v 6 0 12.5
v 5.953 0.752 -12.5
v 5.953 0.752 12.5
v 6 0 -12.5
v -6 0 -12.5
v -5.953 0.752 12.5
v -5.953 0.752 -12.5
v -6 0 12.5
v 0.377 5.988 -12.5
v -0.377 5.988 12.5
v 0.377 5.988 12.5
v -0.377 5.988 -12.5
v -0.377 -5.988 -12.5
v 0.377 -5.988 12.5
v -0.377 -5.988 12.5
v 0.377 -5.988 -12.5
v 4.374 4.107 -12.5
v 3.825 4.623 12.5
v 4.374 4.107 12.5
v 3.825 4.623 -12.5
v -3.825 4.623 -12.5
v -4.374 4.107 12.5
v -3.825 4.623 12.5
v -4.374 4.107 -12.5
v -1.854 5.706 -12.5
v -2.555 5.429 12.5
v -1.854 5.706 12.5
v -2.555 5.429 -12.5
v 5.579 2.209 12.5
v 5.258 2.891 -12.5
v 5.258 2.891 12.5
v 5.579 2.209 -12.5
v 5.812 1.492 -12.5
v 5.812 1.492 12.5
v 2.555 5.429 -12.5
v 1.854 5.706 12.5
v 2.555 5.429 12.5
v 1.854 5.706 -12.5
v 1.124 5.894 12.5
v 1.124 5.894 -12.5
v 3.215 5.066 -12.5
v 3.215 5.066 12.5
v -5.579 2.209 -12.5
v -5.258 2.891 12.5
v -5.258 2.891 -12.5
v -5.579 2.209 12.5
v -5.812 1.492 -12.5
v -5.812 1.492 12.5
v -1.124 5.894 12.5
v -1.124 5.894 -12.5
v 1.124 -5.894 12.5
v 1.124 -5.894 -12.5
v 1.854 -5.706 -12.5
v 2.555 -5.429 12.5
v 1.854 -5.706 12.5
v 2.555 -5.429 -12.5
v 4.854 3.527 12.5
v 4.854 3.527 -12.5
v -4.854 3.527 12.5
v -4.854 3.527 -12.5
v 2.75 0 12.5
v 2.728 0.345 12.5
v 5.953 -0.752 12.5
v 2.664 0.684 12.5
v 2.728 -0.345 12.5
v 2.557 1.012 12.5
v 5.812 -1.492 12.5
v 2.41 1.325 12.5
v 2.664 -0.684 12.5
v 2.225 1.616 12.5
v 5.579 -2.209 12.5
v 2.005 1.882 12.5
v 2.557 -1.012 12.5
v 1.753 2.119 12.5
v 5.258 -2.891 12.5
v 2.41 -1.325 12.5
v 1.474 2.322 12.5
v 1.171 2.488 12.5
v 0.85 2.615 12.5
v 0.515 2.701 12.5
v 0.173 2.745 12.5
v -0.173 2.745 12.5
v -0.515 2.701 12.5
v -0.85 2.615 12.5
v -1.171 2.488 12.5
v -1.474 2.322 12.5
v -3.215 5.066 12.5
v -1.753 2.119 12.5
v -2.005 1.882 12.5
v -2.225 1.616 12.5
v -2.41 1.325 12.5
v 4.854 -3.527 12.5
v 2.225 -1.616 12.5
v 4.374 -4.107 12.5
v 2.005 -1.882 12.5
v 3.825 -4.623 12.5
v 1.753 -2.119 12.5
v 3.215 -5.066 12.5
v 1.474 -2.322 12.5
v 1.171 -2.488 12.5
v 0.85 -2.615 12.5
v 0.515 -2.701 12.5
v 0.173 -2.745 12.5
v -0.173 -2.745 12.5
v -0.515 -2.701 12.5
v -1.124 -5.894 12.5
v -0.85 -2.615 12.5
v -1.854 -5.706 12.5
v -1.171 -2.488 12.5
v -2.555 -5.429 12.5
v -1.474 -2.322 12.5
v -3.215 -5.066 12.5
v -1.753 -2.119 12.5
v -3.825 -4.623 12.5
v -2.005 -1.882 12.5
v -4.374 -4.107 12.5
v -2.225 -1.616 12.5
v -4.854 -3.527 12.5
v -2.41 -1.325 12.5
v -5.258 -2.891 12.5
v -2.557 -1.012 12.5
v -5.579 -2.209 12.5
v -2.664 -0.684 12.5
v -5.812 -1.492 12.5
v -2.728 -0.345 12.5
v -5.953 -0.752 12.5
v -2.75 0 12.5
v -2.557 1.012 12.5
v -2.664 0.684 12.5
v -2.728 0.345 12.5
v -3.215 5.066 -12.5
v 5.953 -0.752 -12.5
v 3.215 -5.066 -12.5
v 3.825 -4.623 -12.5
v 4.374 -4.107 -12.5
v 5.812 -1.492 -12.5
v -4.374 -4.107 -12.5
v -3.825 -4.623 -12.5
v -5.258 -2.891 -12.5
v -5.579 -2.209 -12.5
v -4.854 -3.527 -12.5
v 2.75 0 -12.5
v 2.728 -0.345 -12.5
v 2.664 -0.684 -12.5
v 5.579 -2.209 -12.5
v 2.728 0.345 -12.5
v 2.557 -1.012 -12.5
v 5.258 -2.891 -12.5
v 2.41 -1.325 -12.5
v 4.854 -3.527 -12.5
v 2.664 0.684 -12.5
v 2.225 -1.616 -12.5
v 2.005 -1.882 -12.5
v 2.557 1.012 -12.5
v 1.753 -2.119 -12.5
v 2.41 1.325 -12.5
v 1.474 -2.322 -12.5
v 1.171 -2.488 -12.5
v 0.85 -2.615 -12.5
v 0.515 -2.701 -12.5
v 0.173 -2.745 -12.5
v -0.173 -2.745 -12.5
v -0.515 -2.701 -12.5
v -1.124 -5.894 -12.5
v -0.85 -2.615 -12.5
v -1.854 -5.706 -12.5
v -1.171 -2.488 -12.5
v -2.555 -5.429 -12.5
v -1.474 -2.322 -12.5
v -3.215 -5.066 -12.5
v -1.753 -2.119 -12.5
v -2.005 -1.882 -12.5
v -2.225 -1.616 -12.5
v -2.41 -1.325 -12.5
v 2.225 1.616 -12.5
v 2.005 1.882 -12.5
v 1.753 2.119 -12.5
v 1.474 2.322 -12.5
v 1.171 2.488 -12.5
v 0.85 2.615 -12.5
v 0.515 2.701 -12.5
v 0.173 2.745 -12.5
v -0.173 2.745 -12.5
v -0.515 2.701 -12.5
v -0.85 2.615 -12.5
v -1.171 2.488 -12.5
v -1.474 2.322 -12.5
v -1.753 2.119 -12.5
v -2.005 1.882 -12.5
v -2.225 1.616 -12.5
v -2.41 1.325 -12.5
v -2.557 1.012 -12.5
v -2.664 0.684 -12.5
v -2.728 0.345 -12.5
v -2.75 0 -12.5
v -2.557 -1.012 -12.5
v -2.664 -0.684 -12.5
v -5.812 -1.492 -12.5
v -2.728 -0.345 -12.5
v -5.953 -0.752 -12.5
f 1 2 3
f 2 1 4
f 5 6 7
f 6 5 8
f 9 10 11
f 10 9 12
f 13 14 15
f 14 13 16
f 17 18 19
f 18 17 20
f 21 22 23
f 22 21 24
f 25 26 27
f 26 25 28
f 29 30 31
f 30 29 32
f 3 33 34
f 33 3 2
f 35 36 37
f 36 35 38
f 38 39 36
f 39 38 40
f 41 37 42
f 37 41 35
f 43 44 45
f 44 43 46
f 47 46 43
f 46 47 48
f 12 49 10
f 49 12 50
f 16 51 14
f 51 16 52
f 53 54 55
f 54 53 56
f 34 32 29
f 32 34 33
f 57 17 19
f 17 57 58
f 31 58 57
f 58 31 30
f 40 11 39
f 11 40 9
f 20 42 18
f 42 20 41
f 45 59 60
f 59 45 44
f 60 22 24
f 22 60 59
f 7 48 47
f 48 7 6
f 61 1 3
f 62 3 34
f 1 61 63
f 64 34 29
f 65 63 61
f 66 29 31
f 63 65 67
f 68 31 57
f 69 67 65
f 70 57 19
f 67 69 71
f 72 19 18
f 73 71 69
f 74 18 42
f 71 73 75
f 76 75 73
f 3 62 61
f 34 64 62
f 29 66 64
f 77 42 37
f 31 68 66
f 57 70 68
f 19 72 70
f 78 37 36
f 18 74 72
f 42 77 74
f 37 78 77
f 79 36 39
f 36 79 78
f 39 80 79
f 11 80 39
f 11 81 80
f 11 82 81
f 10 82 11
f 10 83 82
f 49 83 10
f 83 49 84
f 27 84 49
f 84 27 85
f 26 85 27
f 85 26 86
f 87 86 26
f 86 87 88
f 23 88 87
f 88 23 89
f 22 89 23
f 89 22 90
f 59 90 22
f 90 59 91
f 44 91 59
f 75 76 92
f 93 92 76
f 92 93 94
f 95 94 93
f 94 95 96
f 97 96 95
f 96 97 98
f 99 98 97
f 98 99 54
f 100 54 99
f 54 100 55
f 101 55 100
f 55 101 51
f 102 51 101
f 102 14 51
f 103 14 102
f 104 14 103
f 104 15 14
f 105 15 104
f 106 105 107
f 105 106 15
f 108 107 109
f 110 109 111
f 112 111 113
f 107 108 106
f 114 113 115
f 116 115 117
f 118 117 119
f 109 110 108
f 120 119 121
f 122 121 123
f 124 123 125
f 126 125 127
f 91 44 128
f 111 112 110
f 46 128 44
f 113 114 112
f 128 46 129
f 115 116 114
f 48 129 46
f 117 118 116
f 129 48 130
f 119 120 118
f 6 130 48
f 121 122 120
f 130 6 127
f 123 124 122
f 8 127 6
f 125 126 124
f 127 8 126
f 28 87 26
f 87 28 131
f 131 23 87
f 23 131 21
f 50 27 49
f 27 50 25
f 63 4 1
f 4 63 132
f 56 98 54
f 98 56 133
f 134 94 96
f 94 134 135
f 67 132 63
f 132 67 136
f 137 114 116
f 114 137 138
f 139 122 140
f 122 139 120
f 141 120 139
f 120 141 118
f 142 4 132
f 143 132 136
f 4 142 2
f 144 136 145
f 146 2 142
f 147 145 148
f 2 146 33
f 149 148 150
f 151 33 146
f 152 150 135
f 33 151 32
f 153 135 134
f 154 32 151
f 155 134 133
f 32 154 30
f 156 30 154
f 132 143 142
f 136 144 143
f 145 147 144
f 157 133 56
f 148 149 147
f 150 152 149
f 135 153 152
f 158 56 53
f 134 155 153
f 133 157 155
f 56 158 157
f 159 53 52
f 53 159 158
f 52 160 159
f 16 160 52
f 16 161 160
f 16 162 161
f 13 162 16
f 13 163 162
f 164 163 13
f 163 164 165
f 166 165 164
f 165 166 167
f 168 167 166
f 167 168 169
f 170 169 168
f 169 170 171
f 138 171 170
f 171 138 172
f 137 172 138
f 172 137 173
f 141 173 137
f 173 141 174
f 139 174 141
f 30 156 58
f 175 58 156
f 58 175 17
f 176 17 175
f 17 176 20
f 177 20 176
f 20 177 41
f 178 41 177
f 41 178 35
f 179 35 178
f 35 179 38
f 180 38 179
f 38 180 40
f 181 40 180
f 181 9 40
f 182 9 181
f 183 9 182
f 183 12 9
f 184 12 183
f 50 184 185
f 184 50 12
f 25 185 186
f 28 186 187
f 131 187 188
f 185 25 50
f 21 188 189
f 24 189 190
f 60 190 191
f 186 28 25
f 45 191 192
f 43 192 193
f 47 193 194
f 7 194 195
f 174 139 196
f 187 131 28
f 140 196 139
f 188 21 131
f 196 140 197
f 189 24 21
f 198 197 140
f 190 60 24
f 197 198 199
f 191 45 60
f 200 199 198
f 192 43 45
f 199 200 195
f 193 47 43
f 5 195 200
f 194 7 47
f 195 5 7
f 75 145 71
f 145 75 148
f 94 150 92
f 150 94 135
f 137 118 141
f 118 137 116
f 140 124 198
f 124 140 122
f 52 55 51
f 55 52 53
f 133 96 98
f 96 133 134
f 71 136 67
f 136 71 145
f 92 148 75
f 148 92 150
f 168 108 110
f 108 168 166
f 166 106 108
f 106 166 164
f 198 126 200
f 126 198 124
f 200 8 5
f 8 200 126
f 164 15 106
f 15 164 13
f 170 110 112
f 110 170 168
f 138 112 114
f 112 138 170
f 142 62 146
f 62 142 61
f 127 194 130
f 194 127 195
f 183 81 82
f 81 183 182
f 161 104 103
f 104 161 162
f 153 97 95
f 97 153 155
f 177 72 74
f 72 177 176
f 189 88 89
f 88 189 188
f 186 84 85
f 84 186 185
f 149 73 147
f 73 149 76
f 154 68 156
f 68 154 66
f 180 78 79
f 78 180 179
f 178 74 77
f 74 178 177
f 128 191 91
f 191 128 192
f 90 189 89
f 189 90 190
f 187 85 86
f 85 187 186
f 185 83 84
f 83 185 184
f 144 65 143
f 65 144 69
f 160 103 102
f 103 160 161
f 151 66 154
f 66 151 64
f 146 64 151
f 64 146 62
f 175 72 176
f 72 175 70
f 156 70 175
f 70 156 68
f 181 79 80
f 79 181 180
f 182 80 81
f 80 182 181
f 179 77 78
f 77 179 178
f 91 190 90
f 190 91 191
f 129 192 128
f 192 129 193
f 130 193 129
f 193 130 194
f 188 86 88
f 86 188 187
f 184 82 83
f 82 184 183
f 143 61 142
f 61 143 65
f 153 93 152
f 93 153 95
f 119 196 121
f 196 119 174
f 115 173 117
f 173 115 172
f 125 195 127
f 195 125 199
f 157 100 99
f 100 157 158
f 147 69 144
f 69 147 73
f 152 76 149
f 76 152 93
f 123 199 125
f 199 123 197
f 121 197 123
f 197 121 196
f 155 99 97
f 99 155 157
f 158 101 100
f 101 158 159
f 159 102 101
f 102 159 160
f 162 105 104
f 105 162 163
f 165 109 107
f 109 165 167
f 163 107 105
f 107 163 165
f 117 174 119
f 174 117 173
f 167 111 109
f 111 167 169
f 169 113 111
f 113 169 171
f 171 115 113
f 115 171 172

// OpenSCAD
$fn = 50;


difference() {
	union() {
		translate(v = [0, 0, -12.5000000000]) {
			cylinder(h = 25, r = 6.0000000000);
		}
	}
	union() {
		translate(v = [0, 0, -100.0000000000]) {
			cylinder(h = 200, r = 2.7500000000);
		}
	}
}
